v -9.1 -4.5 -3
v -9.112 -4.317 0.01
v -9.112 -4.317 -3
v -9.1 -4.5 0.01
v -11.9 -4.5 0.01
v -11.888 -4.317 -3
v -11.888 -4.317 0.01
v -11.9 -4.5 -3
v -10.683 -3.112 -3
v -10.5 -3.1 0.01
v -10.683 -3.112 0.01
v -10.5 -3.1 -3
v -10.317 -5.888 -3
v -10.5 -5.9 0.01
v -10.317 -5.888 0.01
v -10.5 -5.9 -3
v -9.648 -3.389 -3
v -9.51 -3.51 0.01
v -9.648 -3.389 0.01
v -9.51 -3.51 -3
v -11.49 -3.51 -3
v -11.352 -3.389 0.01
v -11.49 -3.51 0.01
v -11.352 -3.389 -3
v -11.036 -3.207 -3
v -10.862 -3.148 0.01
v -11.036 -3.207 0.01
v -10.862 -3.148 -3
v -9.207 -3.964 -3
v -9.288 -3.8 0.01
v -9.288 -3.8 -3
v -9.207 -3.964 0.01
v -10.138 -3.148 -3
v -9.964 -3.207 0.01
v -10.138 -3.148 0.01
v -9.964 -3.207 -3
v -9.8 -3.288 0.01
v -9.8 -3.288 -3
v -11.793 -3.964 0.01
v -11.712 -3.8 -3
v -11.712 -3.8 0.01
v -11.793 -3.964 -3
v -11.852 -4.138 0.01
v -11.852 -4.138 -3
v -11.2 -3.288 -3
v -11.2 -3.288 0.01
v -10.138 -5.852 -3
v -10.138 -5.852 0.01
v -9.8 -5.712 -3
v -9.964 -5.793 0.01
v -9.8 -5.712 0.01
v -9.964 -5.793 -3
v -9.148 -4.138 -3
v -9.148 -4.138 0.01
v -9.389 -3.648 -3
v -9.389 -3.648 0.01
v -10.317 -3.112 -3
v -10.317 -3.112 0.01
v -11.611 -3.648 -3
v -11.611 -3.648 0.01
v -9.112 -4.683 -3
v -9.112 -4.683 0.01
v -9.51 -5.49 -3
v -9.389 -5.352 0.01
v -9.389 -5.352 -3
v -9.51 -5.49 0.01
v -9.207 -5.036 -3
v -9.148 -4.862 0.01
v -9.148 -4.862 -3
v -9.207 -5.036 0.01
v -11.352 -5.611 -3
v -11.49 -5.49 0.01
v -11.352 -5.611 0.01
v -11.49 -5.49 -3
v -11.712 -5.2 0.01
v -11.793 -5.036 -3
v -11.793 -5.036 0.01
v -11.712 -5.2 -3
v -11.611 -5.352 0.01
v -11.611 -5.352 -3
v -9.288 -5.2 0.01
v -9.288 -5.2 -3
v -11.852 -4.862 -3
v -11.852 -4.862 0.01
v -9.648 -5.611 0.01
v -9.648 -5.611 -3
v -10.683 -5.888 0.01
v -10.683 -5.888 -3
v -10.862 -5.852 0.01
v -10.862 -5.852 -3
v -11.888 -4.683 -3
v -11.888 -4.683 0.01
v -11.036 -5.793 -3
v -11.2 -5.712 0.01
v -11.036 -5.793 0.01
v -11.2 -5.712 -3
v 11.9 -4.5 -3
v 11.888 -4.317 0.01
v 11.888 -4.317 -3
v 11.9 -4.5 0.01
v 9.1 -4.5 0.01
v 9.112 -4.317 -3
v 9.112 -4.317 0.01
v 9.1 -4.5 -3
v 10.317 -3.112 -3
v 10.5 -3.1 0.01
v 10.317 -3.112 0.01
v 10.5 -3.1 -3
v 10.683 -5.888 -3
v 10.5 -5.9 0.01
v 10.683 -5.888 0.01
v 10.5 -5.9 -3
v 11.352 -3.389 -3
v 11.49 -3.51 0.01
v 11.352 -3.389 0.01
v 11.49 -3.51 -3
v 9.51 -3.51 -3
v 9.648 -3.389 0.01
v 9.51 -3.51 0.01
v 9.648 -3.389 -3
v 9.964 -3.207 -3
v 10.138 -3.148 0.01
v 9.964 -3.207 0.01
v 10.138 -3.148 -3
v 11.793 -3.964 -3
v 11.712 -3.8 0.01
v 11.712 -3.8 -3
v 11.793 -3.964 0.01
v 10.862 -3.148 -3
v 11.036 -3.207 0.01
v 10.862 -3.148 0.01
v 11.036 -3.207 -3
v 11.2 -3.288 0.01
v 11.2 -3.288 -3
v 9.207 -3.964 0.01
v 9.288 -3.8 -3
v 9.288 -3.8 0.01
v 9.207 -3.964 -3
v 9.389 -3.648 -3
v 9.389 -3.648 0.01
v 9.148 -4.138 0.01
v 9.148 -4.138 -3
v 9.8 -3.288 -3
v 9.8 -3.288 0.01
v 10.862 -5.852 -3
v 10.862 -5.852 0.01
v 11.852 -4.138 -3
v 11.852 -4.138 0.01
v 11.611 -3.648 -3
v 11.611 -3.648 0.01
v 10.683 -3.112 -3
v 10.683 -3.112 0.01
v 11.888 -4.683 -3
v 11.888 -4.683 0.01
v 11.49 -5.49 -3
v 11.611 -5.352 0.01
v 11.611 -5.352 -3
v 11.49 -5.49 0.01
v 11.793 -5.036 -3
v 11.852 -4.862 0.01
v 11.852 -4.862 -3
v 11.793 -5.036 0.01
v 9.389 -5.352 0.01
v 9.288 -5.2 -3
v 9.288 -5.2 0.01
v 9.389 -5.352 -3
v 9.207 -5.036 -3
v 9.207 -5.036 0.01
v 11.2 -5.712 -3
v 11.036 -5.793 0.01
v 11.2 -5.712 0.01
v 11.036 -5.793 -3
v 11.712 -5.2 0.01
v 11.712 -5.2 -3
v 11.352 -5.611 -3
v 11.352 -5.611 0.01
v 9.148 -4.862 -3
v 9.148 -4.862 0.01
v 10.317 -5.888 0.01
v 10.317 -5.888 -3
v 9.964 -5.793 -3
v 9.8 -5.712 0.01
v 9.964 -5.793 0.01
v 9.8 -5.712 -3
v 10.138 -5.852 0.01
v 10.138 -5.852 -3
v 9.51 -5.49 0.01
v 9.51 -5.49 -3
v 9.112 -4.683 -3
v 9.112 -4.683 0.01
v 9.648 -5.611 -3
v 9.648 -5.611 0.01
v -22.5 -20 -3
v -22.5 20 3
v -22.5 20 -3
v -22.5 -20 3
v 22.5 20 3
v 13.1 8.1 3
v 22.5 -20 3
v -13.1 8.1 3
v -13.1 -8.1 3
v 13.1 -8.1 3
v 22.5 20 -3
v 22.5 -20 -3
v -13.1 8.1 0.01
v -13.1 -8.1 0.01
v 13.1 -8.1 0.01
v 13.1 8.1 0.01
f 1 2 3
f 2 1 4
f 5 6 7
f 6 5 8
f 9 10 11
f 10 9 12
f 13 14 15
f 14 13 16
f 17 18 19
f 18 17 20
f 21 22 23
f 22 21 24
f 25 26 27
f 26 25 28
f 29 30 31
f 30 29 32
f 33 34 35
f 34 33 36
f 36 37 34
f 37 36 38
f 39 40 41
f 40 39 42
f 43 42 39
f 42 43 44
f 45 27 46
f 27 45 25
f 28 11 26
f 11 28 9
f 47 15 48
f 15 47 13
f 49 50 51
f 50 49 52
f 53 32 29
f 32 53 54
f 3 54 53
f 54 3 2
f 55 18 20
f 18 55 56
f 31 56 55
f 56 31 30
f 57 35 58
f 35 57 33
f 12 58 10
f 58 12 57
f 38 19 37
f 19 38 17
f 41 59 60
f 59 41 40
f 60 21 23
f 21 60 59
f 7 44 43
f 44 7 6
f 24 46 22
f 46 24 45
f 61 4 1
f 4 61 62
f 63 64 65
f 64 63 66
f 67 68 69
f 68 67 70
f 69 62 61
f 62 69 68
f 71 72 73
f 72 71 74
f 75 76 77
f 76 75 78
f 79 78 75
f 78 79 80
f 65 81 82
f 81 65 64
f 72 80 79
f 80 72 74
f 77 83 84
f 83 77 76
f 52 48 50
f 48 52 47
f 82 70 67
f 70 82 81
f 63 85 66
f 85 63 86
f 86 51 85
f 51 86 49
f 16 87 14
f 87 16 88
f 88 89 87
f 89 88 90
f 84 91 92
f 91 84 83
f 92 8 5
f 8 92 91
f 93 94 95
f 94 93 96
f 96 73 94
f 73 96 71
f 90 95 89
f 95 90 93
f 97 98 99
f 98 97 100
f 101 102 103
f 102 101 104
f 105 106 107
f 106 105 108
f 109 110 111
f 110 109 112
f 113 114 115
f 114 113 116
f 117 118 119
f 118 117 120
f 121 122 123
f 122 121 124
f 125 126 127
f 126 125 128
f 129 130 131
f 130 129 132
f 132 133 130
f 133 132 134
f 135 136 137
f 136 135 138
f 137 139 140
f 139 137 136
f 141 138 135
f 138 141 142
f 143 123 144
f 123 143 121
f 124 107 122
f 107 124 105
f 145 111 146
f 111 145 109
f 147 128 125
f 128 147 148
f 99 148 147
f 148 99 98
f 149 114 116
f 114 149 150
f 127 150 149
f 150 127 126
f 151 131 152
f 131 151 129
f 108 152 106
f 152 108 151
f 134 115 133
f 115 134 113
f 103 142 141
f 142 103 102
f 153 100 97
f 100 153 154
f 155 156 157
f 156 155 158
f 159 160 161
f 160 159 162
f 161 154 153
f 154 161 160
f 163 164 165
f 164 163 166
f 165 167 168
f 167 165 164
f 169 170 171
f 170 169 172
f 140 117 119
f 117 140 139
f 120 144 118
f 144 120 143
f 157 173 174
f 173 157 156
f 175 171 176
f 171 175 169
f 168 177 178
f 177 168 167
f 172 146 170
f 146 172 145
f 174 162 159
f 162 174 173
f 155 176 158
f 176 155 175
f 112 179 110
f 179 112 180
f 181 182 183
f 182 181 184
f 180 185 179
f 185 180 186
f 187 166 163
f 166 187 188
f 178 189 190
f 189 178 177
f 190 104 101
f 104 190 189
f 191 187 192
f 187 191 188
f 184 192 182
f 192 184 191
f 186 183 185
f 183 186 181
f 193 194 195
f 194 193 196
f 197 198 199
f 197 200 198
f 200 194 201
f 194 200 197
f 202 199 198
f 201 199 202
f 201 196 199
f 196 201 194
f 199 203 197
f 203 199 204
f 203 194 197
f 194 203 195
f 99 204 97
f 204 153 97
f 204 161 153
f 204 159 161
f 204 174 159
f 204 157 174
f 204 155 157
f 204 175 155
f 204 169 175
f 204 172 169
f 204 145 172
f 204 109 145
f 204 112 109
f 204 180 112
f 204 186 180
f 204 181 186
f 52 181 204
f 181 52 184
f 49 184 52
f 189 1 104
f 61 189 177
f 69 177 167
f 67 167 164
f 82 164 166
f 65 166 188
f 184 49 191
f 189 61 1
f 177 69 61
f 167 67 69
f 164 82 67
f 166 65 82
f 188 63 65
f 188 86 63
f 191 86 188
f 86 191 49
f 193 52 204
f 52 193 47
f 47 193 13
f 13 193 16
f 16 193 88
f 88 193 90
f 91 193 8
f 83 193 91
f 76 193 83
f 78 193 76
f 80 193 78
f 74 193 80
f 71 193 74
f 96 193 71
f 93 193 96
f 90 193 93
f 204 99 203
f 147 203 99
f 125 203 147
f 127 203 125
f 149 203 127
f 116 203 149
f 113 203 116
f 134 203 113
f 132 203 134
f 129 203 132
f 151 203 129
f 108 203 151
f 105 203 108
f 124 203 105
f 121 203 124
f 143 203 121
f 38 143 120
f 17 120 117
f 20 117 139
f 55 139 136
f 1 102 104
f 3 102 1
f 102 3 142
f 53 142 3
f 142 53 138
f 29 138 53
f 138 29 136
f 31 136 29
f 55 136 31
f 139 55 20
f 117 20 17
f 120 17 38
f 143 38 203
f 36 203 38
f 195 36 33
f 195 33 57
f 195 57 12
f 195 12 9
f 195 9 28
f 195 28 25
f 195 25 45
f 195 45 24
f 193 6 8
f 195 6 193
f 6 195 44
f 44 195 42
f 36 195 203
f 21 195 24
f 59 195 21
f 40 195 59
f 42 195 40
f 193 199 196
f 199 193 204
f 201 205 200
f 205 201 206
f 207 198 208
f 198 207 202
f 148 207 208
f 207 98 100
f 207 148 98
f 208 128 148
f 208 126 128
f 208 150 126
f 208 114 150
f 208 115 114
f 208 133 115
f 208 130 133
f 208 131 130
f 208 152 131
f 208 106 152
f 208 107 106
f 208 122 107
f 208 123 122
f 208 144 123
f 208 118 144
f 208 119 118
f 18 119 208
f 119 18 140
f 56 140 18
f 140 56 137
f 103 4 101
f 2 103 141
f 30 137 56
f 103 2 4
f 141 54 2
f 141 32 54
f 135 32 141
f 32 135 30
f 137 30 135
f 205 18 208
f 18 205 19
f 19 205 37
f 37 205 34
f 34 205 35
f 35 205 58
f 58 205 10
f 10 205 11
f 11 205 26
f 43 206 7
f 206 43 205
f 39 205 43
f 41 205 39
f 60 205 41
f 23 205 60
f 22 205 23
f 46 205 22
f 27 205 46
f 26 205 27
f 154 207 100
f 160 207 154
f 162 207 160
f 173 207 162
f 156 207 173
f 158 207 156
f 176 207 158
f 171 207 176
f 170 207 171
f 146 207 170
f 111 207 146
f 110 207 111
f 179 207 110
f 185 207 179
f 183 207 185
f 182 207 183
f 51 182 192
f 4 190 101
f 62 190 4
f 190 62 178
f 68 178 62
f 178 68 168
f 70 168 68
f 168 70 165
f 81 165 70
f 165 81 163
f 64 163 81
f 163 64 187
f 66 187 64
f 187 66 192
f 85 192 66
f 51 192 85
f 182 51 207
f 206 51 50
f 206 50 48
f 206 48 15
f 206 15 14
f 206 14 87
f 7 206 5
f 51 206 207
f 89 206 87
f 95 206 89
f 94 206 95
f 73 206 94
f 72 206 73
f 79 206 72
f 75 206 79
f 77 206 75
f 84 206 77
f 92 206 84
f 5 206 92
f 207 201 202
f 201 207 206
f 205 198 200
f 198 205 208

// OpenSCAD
// fit_test.scad
// Fit test for an MPU-9250/6500/9255 breakout (GY-9250 style board).
// Both mounting holes sit along one edge, near the two ends.

// ===== MEASURE THESE ON YOUR OWN BOARD =====
board_x   = 25.0;    // long edge
board_y   = 15.0;    // short edge
hole_dx   = 10.5;    // hole centre, distance from board centre along X
hole_dy   = 4.5;     // hole centre, distance from board centre along Y
                     // negative side; both holes share this offset
// ===========================================

fit       = 0.6;     // clearance around the board, per side
hole_dia  = 2.8;     // M3 self-taps into PLA
plate_x   = 45;
plate_y   = 40;
plate_z   = 6;
pocket_z  = 3;

$fn = 48;

difference() {
    cube([plate_x, plate_y, plate_z], center = true);

    // pocket matching the board outline
    translate([0, 0, plate_z/2 - pocket_z/2 + 0.01])
        cube([board_x + 2*fit, board_y + 2*fit, pocket_z], center = true);

    // two holes along the same edge
    for (s = [-1, 1])
        translate([s * hole_dx, -hole_dy, 0])
            cylinder(h = plate_z * 2, d = hole_dia, center = true);
}
